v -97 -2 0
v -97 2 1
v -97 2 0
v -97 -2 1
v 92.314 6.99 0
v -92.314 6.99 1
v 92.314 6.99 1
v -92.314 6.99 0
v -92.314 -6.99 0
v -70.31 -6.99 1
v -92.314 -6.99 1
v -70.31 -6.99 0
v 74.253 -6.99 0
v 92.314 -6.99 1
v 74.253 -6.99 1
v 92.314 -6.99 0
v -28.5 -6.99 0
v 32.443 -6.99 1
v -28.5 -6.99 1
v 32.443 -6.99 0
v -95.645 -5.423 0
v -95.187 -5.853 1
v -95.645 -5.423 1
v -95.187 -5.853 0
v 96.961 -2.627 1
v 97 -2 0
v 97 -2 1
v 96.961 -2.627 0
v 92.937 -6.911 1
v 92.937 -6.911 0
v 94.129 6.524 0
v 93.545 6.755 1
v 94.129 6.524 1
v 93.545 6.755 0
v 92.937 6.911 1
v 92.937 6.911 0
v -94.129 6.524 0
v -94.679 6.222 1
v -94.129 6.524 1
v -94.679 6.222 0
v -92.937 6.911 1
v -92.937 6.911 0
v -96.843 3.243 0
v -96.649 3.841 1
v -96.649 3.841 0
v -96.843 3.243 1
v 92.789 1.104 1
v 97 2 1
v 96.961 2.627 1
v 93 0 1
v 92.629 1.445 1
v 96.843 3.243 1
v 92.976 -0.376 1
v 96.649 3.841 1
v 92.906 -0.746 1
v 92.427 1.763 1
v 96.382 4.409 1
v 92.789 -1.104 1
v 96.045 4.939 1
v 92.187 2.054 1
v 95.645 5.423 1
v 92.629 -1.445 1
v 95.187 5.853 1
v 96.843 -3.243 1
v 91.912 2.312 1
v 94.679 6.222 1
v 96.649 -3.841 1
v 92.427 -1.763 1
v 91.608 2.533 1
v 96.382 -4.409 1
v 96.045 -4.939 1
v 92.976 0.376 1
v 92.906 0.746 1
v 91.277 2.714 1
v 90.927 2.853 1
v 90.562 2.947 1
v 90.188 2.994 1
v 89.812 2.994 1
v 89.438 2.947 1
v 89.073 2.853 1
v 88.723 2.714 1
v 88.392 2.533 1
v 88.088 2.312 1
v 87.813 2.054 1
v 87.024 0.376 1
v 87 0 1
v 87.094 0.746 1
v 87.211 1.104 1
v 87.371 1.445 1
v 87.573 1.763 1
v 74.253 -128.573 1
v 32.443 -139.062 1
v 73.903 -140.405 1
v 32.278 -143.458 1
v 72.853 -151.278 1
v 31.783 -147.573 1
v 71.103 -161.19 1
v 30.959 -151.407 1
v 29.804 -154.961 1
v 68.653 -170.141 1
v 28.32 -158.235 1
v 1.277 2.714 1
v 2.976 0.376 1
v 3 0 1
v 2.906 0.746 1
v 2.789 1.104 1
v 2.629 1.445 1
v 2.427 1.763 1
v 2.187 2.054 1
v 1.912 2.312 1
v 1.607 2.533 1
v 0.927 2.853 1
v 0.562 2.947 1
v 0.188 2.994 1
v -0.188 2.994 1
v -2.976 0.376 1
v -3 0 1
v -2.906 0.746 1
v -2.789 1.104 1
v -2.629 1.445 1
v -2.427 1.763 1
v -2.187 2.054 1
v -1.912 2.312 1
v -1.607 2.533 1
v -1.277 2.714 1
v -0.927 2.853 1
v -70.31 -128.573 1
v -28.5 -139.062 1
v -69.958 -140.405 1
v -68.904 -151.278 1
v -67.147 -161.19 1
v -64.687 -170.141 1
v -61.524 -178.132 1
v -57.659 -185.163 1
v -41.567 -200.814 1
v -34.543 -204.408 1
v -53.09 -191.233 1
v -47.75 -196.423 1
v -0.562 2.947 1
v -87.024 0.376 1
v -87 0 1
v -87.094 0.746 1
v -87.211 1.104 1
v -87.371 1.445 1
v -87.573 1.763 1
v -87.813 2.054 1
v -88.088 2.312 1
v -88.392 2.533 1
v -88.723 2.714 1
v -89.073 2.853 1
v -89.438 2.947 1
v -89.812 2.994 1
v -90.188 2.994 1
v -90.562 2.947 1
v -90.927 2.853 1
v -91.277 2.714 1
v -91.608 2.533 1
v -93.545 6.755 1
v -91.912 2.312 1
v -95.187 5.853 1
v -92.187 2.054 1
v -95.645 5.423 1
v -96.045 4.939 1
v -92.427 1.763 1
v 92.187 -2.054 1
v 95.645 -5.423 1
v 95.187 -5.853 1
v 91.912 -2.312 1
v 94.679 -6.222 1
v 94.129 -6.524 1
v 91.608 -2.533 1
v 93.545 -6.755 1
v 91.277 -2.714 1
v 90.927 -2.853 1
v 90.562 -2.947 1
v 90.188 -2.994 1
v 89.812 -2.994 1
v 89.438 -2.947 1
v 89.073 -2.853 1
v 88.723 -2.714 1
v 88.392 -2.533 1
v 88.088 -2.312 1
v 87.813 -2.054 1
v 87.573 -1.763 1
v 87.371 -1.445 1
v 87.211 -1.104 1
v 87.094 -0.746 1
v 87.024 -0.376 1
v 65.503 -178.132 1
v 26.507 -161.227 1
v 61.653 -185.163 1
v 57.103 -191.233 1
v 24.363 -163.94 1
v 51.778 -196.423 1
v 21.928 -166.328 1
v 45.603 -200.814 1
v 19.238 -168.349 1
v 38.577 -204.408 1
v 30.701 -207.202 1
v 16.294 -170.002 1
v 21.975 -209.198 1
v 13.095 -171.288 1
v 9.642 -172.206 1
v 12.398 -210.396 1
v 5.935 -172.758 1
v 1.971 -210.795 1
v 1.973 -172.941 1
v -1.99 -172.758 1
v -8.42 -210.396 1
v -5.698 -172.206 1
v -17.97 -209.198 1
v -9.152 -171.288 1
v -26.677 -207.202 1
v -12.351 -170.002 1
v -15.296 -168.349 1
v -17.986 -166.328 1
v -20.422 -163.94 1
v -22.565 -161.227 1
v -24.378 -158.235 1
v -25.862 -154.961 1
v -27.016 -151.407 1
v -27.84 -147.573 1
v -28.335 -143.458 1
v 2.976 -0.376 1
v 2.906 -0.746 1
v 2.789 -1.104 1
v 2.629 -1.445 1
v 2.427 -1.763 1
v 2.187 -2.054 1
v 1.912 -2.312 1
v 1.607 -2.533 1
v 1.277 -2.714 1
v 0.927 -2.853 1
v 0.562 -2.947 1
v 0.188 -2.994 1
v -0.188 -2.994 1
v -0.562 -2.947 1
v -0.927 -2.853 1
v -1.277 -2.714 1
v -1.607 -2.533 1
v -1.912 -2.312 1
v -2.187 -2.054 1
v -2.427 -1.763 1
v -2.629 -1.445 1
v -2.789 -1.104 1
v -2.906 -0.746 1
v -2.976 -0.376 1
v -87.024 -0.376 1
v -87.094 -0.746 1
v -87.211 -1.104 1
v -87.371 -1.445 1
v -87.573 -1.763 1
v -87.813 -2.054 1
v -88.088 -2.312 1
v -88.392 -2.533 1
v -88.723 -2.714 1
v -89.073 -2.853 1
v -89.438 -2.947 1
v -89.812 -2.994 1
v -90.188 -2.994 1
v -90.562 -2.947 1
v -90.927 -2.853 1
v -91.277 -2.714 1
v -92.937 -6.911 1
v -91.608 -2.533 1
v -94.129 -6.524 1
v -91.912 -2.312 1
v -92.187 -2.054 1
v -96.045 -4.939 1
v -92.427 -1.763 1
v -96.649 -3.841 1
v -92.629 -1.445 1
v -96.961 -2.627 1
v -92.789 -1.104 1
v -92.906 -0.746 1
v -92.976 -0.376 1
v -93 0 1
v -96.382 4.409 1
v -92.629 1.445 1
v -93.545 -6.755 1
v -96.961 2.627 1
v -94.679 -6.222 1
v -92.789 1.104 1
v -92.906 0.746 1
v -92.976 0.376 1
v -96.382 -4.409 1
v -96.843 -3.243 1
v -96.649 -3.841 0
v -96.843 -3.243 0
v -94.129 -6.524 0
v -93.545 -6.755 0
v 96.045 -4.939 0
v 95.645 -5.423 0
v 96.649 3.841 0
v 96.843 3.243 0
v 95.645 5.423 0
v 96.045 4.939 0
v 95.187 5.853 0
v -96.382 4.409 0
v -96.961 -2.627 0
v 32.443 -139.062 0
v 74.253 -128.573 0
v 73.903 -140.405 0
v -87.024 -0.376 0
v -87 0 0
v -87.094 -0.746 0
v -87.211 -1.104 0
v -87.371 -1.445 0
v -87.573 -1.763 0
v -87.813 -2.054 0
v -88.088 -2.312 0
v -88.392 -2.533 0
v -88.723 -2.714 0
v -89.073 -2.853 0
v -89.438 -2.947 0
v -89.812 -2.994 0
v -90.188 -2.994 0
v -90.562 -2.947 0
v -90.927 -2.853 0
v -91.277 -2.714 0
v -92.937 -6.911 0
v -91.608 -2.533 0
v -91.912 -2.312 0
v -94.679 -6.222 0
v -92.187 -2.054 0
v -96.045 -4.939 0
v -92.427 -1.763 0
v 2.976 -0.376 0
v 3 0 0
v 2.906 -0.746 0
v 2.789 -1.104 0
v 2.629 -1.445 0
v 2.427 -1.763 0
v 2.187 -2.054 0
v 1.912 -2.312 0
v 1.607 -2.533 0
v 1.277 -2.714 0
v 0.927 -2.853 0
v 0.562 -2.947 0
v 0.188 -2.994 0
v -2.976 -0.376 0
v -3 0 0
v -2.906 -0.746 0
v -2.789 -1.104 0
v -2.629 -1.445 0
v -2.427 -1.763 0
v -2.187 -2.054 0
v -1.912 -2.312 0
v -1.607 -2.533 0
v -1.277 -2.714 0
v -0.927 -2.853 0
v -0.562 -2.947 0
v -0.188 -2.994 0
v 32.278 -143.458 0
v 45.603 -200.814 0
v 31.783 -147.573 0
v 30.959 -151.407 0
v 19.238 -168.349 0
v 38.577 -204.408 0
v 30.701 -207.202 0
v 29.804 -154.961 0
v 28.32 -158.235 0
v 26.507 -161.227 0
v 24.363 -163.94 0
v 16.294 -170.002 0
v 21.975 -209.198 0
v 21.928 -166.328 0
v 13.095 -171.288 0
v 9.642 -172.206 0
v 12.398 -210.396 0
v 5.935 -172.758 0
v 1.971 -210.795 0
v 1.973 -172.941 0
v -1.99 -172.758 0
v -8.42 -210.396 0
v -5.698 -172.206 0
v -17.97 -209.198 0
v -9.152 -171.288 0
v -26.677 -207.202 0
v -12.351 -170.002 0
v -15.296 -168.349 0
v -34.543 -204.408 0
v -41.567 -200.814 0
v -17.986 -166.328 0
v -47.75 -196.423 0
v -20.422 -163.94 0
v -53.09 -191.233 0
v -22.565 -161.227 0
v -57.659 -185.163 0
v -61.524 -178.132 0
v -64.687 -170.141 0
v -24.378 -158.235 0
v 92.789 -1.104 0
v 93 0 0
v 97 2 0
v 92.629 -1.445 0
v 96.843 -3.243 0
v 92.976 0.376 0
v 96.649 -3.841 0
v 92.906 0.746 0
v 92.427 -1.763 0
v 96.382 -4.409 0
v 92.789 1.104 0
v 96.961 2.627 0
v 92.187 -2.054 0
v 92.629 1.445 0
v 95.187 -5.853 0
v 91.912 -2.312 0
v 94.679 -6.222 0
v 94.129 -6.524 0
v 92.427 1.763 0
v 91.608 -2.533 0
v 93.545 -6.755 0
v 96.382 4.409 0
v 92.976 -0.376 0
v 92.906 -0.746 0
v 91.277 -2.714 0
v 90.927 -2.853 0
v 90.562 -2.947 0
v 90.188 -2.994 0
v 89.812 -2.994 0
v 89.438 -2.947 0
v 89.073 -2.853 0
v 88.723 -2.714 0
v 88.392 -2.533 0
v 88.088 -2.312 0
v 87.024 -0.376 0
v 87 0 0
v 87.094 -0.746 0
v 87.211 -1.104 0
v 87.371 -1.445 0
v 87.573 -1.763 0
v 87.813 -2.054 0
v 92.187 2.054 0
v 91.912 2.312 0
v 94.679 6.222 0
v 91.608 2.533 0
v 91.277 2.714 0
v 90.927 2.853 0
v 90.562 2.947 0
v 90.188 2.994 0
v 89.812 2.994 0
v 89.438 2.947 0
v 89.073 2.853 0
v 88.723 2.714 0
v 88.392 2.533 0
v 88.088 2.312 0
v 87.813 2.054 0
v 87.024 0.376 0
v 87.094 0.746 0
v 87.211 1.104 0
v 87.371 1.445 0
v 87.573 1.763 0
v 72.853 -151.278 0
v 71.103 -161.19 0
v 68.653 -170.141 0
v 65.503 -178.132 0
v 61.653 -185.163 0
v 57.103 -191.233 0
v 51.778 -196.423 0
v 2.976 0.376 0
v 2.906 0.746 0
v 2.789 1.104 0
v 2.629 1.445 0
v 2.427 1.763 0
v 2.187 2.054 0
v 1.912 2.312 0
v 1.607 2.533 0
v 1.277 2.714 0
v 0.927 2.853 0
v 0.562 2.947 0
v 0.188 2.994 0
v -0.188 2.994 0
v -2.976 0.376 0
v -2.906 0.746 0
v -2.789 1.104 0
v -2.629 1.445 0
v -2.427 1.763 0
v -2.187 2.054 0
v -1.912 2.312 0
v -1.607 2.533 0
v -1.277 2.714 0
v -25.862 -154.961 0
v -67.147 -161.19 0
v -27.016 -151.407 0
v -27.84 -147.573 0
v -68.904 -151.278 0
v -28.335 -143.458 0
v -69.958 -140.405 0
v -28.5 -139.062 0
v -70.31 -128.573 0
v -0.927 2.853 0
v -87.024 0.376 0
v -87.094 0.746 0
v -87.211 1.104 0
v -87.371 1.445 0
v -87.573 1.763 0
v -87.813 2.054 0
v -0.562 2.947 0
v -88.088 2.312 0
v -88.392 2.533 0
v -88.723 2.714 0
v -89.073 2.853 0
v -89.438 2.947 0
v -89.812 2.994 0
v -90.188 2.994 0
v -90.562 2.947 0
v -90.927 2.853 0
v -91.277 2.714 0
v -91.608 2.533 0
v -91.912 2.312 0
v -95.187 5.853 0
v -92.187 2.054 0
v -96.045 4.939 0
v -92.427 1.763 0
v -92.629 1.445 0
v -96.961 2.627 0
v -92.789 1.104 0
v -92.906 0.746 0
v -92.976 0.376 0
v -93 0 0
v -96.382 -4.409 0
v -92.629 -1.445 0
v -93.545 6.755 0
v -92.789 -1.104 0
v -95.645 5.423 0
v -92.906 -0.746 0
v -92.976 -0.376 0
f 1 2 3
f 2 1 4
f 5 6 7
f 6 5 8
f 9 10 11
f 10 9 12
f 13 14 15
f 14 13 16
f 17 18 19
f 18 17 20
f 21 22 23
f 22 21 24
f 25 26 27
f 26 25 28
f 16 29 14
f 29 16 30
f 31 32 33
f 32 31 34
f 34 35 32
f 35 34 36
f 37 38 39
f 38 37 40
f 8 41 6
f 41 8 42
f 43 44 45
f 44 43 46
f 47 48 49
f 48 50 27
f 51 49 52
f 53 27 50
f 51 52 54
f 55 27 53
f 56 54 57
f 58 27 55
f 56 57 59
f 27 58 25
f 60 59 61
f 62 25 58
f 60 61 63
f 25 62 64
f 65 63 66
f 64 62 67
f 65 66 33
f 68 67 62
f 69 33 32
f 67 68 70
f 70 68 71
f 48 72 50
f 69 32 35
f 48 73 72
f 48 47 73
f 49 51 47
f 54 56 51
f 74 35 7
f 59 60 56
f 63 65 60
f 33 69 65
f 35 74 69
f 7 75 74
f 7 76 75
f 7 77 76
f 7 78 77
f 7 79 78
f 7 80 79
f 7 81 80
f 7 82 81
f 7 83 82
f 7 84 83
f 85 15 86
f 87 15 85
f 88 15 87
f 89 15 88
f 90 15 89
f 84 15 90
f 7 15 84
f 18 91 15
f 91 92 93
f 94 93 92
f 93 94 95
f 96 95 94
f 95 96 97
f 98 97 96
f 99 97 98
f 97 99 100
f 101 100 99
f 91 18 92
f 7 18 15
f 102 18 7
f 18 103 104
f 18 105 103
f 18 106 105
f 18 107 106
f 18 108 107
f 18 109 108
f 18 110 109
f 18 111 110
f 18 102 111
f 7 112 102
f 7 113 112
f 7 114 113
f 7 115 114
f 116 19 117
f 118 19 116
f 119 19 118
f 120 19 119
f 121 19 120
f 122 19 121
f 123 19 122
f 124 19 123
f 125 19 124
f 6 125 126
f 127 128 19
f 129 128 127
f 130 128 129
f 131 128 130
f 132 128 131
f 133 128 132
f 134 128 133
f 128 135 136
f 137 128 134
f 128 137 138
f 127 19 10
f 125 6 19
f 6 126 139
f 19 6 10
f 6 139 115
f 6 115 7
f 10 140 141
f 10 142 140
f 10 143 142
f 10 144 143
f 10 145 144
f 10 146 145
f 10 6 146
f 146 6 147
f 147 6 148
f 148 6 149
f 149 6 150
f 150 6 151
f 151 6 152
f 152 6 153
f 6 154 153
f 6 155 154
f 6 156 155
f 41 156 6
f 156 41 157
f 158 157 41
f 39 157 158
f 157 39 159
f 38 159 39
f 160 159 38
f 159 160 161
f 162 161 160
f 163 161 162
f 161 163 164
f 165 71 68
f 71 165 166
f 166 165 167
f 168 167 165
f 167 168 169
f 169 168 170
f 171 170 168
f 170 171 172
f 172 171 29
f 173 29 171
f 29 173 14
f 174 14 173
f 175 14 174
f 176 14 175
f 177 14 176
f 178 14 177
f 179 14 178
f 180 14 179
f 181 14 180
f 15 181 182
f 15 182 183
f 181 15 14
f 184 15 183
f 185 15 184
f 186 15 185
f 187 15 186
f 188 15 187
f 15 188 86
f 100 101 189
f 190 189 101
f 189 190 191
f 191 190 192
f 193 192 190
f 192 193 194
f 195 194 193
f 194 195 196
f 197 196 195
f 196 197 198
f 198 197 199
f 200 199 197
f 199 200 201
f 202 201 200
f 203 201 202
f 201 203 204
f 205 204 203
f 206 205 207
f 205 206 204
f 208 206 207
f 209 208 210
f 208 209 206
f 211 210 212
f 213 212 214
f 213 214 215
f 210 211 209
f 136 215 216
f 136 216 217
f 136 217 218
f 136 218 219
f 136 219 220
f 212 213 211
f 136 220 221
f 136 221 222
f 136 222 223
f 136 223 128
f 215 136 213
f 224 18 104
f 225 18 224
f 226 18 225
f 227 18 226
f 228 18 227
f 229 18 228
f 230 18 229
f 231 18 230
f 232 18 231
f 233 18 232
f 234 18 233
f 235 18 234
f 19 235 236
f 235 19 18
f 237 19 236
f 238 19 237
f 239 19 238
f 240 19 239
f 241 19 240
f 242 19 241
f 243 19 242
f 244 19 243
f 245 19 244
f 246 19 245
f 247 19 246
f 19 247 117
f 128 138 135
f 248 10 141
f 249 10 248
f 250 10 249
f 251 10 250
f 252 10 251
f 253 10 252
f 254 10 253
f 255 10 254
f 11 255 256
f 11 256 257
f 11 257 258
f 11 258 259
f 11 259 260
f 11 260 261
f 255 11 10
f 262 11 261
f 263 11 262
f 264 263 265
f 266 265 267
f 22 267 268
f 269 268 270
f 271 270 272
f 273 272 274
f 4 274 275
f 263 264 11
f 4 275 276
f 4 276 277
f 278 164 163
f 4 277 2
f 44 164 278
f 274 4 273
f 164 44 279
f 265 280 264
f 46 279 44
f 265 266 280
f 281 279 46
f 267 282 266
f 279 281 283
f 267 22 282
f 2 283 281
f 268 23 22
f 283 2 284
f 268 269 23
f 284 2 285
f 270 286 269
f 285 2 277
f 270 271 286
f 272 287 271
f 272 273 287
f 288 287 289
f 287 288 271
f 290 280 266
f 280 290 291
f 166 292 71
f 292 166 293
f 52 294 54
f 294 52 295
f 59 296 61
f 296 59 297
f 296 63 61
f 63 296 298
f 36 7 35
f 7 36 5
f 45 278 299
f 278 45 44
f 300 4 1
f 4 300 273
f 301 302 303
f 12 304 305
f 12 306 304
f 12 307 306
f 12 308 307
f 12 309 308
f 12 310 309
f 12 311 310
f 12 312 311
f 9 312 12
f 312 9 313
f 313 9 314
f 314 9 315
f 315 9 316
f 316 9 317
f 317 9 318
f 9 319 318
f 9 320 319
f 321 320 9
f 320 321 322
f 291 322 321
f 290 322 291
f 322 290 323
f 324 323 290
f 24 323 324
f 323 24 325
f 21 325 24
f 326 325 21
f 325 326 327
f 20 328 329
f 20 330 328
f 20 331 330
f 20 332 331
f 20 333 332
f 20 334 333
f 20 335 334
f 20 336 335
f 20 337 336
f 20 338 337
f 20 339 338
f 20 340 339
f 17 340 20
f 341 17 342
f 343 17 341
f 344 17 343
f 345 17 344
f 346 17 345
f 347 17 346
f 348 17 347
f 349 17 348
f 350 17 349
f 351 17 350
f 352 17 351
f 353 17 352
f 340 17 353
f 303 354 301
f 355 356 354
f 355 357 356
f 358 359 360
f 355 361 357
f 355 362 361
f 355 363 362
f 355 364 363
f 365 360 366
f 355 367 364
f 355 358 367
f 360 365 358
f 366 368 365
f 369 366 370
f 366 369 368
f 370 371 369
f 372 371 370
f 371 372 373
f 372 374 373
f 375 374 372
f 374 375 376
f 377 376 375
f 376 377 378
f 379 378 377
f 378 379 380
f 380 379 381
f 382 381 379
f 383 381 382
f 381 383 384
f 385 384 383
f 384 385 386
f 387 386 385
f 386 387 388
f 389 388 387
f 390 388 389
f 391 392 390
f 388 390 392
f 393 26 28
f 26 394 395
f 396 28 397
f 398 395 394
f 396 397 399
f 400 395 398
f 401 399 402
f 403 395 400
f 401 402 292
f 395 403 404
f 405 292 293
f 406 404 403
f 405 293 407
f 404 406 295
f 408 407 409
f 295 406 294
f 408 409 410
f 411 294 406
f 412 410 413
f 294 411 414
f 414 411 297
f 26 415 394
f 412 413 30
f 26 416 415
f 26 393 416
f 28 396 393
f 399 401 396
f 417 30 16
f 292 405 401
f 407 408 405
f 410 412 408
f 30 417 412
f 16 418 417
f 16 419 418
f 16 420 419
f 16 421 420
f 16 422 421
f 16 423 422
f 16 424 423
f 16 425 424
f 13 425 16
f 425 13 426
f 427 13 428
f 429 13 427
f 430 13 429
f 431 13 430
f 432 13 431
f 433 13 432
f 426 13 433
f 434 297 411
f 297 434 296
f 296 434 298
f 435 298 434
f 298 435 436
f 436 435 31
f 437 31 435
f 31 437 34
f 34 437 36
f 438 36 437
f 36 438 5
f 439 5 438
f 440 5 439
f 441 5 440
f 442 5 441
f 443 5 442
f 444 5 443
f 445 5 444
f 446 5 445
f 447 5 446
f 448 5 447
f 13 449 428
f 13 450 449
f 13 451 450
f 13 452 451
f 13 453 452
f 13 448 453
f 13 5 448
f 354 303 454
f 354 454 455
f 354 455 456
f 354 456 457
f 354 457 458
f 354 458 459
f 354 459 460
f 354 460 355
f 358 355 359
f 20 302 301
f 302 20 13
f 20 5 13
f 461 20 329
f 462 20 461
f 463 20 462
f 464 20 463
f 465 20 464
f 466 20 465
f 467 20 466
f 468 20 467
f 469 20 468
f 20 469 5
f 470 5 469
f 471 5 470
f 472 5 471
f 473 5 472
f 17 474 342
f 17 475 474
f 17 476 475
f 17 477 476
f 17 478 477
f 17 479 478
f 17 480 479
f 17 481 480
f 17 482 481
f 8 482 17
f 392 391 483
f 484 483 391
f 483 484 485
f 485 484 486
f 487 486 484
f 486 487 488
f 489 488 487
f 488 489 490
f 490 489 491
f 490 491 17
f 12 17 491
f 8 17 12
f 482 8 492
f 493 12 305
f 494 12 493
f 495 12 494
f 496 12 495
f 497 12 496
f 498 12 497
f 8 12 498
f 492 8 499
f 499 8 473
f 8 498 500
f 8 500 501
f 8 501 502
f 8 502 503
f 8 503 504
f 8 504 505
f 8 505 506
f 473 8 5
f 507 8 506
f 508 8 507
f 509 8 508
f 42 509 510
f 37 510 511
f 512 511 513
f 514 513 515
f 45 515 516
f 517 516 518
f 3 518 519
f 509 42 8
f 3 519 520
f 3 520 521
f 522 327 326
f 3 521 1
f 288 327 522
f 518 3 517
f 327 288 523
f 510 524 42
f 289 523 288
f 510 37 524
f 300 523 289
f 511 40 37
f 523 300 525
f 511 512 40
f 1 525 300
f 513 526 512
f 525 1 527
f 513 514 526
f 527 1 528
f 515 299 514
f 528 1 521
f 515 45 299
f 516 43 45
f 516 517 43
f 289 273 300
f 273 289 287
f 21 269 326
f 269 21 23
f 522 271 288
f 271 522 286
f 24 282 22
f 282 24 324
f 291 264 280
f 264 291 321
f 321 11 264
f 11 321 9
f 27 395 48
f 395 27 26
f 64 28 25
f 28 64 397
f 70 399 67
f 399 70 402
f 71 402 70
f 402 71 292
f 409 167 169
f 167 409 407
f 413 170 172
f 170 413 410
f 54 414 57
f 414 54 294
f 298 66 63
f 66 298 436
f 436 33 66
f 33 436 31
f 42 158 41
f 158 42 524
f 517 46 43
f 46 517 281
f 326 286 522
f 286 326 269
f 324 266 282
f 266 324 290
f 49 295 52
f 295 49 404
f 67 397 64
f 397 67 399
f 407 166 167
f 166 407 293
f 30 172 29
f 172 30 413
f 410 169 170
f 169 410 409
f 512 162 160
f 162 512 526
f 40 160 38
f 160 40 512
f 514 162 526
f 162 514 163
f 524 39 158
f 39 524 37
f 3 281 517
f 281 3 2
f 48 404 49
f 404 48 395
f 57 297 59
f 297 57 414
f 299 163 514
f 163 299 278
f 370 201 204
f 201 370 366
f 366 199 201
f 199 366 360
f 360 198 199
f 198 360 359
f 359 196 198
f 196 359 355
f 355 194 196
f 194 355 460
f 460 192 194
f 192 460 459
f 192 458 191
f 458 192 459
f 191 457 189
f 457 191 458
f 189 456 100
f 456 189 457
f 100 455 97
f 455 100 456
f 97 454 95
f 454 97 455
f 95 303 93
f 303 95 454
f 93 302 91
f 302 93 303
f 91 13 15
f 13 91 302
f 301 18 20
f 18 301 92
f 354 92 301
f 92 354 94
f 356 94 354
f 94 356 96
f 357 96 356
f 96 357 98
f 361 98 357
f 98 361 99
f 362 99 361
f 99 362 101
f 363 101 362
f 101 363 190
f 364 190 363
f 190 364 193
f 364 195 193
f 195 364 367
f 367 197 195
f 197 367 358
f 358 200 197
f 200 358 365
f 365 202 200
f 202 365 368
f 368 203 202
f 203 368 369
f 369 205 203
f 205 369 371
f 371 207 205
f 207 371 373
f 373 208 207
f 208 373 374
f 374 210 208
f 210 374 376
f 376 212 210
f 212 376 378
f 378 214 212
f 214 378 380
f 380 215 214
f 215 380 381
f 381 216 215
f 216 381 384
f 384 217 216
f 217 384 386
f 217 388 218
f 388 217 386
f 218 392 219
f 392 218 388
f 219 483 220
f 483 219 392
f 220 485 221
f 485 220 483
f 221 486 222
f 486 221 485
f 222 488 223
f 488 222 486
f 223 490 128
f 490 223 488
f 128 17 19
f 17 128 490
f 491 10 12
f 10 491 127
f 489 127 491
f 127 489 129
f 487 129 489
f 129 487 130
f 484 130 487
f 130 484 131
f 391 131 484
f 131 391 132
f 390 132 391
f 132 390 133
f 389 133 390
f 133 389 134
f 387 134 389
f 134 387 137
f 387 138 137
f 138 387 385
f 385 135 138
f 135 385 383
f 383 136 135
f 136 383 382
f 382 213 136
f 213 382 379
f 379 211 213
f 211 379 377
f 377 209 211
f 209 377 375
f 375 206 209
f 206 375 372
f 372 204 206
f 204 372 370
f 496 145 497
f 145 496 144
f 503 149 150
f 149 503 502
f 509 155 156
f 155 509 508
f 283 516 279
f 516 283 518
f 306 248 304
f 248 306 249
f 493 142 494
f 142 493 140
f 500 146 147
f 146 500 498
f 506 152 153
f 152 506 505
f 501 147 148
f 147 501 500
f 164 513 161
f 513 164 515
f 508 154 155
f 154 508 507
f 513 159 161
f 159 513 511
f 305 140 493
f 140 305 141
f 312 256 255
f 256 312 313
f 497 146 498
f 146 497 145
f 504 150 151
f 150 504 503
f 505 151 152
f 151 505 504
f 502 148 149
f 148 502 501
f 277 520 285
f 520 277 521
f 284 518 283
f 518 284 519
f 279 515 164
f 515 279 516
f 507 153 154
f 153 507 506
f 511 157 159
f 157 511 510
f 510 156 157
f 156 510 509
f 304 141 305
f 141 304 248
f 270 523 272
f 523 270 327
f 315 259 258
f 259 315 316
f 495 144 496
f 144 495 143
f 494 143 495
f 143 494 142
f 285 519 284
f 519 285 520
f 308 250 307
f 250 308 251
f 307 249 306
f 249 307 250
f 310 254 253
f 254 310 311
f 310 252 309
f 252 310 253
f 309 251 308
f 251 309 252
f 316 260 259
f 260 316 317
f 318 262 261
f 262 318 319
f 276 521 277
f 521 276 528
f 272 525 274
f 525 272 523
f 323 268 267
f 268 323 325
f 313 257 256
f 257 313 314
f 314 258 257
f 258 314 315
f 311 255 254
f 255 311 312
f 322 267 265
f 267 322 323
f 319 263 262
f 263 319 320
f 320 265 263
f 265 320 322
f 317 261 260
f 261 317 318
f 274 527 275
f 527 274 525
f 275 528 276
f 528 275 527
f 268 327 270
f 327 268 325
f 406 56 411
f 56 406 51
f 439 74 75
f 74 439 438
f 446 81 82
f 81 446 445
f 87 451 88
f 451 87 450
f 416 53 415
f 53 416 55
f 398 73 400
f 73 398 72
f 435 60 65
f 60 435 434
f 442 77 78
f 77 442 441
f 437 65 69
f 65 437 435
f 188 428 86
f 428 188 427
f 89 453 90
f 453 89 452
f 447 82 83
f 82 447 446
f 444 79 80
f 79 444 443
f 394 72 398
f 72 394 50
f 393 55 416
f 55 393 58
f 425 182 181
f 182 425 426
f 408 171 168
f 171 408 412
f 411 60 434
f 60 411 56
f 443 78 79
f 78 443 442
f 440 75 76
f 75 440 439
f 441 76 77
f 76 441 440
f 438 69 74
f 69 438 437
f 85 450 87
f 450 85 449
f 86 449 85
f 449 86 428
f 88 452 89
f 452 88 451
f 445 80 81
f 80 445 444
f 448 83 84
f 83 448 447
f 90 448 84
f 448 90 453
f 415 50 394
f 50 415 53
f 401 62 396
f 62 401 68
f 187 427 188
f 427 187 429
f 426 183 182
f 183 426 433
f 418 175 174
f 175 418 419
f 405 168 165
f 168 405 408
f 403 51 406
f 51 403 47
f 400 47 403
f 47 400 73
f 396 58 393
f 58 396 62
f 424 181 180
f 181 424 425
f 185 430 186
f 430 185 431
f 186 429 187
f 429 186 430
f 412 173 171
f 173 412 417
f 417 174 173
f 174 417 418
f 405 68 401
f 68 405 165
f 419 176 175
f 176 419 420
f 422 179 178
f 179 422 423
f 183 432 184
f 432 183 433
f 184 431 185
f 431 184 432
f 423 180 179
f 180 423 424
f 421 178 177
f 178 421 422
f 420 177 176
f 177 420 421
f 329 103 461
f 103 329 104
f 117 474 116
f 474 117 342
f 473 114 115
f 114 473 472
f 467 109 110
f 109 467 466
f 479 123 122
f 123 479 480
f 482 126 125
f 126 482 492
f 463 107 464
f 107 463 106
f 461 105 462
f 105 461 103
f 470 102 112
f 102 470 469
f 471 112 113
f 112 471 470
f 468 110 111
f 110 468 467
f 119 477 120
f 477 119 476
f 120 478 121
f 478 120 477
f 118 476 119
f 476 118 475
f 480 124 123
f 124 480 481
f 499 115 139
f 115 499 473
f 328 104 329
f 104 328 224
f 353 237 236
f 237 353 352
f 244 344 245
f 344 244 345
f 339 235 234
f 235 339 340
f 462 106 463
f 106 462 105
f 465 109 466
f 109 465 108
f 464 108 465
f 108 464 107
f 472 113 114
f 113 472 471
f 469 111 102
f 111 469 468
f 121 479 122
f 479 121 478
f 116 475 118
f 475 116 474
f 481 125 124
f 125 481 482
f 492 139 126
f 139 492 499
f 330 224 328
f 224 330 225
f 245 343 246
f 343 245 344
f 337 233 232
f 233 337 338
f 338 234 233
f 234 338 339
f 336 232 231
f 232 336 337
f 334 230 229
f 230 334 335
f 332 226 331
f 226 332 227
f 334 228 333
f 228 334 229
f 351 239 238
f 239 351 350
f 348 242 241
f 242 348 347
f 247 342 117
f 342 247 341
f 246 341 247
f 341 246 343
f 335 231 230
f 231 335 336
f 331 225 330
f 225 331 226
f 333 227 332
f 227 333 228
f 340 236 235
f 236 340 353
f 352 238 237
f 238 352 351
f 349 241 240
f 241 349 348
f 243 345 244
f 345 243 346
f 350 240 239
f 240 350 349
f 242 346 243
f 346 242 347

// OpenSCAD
$fn = 50;


difference() {
	union() {
		translate(v = [0, 0, 0]) {
			rotate(a = [0, 0, 0]) {
				hull() {
					translate(v = [-92.0000000000, 2.0000000000, 0]) {
						rotate(a = [0, 0, 0]) {
							translate(v = [0, 0, 0]) {
								rotate(a = [0, 0, 0]) {
									cylinder(h = 1, r = 5);
								}
							}
						}
					}
					translate(v = [92.0000000000, 2.0000000000, 0]) {
						rotate(a = [0, 0, 0]) {
							translate(v = [0, 0, 0]) {
								rotate(a = [0, 0, 0]) {
									cylinder(h = 1, r = 5);
								}
							}
						}
					}
					translate(v = [-92.0000000000, -2.0000000000, 0]) {
						rotate(a = [0, 0, 0]) {
							translate(v = [0, 0, 0]) {
								rotate(a = [0, 0, 0]) {
									cylinder(h = 1, r = 5);
								}
							}
						}
					}
					translate(v = [92.0000000000, -2.0000000000, 0]) {
						rotate(a = [0, 0, 0]) {
							translate(v = [0, 0, 0]) {
								rotate(a = [0, 0, 0]) {
									cylinder(h = 1, r = 5);
								}
							}
						}
					}
				}
			}
		}
		translate(v = [0, 0, 0]) {
			rotate(a = [0, 0, 0]) {
				linear_extrude(height = 1) {
					text(font = "DejaVu Sans Mono:style=Bold", halign = "center", size = 209.0000000000, text = "U", valign = "top");
				}
			}
		}
	}
	union() {
		translate(v = [-90.0000000000, 0.0000000000, -125.0000000000]) {
			rotate(a = [0, 0, 0]) {
				cylinder(h = 250, r = 3.0000000000);
			}
		}
		translate(v = [90.0000000000, 0.0000000000, -125.0000000000]) {
			rotate(a = [0, 0, 0]) {
				cylinder(h = 250, r = 3.0000000000);
			}
		}
		translate(v = [90.0000000000, 0.0000000000, -125.0000000000]) {
			rotate(a = [0, 0, 0]) {
				cylinder(h = 250, r = 3.0000000000);
			}
		}
		translate(v = [0, 0, -125.0000000000]) {
			rotate(a = [0, 0, 0]) {
				cylinder(h = 250, r = 3.0000000000);
			}
		}
	}
}
